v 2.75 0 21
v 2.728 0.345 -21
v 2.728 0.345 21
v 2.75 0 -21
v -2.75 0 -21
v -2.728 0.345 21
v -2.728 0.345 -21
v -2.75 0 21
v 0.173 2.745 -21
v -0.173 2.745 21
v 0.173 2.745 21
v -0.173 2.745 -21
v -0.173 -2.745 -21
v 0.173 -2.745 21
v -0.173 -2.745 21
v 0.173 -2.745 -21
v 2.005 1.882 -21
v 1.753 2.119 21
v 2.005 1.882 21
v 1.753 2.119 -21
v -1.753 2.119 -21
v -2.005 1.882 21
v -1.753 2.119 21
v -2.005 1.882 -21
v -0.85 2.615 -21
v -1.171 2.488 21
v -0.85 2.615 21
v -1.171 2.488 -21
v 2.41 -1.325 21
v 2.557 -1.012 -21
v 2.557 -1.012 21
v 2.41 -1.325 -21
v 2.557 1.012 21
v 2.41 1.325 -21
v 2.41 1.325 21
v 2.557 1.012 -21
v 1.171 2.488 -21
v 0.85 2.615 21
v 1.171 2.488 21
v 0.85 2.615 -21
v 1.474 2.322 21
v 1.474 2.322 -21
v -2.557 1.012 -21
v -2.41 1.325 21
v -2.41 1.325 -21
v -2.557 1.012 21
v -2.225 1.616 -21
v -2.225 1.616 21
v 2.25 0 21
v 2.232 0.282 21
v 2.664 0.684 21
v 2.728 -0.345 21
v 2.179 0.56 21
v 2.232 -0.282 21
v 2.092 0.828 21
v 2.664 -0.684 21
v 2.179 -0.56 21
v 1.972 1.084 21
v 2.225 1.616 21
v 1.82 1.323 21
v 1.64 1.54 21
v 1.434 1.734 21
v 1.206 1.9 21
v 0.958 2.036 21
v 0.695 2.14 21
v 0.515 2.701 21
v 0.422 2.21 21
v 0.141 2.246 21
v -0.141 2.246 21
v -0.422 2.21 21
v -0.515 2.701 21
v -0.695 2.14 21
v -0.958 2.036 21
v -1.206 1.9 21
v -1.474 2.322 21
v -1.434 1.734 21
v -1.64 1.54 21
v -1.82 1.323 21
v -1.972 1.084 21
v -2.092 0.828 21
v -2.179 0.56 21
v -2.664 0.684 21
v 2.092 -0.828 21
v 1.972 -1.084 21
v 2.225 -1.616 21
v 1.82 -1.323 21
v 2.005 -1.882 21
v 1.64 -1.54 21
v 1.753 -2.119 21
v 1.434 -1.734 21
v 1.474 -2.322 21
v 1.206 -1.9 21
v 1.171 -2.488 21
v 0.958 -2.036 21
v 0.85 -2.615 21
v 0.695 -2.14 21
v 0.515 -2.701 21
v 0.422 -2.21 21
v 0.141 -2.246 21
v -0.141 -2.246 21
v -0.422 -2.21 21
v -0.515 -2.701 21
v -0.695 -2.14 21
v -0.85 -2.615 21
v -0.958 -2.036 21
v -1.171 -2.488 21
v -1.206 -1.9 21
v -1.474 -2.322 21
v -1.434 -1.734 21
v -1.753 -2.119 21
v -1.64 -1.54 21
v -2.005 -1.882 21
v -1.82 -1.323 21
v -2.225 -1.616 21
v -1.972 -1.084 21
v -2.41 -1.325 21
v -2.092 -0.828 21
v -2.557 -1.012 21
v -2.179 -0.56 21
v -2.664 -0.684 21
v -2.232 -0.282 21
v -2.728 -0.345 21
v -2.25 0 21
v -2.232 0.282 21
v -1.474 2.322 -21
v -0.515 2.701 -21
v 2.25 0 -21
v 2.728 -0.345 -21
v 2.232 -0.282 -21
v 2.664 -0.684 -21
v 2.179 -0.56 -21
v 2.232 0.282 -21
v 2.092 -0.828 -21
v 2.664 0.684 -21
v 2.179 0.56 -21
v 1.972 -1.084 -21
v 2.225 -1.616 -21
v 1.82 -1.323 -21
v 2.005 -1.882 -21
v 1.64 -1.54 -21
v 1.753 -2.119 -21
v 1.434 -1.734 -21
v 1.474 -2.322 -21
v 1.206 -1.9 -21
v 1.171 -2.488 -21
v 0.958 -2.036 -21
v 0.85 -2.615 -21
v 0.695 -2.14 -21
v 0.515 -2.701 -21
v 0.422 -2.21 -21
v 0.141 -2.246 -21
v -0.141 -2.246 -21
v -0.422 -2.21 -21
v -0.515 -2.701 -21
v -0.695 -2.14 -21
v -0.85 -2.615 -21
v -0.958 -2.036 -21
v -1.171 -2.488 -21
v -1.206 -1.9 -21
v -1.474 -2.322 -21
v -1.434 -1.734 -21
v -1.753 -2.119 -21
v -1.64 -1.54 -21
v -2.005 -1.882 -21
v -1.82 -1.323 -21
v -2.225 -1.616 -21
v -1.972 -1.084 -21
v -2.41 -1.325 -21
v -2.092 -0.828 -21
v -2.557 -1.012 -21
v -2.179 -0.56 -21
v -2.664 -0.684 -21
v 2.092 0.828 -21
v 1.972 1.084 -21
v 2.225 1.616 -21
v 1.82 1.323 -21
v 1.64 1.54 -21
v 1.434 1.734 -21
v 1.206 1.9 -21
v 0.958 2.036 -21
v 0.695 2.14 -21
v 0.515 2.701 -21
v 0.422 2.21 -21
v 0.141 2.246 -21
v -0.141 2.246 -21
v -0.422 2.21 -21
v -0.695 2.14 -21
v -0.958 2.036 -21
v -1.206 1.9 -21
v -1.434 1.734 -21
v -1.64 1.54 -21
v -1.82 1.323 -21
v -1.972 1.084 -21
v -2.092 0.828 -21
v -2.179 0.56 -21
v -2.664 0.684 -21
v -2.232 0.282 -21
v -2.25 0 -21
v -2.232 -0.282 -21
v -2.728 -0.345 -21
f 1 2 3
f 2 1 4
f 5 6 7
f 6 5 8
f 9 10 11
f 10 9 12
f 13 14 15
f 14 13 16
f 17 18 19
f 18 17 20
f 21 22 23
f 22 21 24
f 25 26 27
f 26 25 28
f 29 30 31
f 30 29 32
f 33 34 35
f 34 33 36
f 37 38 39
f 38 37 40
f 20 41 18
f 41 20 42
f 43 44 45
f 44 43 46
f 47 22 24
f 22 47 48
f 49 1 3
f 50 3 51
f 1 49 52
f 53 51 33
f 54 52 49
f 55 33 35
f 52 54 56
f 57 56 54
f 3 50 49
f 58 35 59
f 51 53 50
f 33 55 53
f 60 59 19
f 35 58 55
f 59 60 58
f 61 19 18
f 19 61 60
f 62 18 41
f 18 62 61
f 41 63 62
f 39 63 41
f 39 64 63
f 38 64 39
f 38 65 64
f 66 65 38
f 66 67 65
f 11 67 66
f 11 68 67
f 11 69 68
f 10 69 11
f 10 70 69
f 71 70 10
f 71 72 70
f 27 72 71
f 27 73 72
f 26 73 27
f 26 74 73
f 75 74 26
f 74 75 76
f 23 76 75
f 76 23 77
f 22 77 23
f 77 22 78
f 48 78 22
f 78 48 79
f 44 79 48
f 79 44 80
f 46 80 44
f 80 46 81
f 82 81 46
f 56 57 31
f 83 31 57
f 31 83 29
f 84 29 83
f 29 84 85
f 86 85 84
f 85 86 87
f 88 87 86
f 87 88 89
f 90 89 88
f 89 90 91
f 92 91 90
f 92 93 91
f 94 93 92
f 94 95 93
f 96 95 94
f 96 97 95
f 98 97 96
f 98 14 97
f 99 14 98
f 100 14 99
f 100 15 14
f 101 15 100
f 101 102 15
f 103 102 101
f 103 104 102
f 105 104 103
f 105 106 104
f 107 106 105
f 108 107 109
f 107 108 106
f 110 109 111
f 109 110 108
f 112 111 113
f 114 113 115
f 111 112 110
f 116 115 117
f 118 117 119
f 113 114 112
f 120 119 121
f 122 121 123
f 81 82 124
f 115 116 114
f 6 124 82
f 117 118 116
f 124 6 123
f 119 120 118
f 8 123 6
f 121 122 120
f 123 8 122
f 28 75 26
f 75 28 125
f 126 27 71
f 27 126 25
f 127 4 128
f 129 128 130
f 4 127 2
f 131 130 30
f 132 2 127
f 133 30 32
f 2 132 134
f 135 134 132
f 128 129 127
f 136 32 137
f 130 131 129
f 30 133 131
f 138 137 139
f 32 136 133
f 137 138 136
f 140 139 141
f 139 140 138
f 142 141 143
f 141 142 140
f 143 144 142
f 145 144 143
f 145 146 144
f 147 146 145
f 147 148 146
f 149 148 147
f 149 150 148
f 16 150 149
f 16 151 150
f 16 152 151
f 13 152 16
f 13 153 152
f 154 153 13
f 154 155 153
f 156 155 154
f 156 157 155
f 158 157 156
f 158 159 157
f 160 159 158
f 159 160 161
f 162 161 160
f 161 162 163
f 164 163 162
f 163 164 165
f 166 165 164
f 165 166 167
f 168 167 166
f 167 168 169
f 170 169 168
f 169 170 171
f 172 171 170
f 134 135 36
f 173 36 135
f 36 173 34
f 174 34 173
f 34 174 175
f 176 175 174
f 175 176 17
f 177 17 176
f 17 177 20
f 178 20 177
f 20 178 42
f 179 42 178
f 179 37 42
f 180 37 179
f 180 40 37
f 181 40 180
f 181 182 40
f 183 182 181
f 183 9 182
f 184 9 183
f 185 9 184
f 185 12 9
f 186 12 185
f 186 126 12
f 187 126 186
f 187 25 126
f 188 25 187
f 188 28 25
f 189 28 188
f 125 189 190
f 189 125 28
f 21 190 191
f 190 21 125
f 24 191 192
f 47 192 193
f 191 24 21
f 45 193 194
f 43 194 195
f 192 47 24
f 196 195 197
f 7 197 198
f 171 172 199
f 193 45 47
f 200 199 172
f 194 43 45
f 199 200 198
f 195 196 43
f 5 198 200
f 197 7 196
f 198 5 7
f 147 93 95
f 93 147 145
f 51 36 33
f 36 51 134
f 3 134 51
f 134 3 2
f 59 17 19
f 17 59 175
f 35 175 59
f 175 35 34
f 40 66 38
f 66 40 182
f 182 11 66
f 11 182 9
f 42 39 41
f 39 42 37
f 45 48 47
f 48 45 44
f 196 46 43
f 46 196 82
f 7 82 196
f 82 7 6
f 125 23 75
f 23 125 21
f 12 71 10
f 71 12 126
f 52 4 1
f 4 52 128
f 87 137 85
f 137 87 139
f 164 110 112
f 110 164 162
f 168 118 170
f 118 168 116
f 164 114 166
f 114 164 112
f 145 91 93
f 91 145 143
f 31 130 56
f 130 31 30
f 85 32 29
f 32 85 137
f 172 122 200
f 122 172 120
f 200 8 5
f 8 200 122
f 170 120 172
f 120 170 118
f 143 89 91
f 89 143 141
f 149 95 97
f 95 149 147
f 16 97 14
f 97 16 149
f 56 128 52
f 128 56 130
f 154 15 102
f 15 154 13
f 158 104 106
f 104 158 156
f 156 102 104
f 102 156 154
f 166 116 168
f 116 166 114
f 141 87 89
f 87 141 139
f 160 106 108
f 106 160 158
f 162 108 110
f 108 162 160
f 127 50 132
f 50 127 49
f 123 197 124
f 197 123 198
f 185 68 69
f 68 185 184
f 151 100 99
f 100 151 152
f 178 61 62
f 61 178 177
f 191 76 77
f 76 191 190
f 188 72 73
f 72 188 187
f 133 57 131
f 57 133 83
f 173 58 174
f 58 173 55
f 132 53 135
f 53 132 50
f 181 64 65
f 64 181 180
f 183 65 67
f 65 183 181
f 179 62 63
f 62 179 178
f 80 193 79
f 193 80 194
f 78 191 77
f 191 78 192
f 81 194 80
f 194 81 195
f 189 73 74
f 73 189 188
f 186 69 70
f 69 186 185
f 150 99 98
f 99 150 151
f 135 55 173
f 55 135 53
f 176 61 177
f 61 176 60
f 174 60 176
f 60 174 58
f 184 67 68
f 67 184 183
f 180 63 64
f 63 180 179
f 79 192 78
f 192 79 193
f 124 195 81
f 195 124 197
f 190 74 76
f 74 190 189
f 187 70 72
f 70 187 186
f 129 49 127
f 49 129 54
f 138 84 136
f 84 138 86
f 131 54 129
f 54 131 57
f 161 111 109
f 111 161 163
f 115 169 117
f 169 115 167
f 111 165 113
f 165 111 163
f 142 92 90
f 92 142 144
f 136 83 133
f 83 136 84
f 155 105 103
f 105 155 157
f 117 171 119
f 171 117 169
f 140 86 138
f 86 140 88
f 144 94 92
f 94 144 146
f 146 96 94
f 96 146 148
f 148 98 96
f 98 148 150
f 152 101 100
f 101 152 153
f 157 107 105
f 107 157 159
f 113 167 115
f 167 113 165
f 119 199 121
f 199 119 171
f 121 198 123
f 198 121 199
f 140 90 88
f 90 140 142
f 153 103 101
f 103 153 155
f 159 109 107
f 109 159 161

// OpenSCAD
$fn = 50;


difference() {
	union() {
		translate(v = [0, 0, -21.0000000000]) {
			cylinder(h = 42, r = 2.7500000000);
		}
	}
	union() {
		translate(v = [0, 0, -100.0000000000]) {
			cylinder(h = 200, r = 2.2500000000);
		}
	}
}
